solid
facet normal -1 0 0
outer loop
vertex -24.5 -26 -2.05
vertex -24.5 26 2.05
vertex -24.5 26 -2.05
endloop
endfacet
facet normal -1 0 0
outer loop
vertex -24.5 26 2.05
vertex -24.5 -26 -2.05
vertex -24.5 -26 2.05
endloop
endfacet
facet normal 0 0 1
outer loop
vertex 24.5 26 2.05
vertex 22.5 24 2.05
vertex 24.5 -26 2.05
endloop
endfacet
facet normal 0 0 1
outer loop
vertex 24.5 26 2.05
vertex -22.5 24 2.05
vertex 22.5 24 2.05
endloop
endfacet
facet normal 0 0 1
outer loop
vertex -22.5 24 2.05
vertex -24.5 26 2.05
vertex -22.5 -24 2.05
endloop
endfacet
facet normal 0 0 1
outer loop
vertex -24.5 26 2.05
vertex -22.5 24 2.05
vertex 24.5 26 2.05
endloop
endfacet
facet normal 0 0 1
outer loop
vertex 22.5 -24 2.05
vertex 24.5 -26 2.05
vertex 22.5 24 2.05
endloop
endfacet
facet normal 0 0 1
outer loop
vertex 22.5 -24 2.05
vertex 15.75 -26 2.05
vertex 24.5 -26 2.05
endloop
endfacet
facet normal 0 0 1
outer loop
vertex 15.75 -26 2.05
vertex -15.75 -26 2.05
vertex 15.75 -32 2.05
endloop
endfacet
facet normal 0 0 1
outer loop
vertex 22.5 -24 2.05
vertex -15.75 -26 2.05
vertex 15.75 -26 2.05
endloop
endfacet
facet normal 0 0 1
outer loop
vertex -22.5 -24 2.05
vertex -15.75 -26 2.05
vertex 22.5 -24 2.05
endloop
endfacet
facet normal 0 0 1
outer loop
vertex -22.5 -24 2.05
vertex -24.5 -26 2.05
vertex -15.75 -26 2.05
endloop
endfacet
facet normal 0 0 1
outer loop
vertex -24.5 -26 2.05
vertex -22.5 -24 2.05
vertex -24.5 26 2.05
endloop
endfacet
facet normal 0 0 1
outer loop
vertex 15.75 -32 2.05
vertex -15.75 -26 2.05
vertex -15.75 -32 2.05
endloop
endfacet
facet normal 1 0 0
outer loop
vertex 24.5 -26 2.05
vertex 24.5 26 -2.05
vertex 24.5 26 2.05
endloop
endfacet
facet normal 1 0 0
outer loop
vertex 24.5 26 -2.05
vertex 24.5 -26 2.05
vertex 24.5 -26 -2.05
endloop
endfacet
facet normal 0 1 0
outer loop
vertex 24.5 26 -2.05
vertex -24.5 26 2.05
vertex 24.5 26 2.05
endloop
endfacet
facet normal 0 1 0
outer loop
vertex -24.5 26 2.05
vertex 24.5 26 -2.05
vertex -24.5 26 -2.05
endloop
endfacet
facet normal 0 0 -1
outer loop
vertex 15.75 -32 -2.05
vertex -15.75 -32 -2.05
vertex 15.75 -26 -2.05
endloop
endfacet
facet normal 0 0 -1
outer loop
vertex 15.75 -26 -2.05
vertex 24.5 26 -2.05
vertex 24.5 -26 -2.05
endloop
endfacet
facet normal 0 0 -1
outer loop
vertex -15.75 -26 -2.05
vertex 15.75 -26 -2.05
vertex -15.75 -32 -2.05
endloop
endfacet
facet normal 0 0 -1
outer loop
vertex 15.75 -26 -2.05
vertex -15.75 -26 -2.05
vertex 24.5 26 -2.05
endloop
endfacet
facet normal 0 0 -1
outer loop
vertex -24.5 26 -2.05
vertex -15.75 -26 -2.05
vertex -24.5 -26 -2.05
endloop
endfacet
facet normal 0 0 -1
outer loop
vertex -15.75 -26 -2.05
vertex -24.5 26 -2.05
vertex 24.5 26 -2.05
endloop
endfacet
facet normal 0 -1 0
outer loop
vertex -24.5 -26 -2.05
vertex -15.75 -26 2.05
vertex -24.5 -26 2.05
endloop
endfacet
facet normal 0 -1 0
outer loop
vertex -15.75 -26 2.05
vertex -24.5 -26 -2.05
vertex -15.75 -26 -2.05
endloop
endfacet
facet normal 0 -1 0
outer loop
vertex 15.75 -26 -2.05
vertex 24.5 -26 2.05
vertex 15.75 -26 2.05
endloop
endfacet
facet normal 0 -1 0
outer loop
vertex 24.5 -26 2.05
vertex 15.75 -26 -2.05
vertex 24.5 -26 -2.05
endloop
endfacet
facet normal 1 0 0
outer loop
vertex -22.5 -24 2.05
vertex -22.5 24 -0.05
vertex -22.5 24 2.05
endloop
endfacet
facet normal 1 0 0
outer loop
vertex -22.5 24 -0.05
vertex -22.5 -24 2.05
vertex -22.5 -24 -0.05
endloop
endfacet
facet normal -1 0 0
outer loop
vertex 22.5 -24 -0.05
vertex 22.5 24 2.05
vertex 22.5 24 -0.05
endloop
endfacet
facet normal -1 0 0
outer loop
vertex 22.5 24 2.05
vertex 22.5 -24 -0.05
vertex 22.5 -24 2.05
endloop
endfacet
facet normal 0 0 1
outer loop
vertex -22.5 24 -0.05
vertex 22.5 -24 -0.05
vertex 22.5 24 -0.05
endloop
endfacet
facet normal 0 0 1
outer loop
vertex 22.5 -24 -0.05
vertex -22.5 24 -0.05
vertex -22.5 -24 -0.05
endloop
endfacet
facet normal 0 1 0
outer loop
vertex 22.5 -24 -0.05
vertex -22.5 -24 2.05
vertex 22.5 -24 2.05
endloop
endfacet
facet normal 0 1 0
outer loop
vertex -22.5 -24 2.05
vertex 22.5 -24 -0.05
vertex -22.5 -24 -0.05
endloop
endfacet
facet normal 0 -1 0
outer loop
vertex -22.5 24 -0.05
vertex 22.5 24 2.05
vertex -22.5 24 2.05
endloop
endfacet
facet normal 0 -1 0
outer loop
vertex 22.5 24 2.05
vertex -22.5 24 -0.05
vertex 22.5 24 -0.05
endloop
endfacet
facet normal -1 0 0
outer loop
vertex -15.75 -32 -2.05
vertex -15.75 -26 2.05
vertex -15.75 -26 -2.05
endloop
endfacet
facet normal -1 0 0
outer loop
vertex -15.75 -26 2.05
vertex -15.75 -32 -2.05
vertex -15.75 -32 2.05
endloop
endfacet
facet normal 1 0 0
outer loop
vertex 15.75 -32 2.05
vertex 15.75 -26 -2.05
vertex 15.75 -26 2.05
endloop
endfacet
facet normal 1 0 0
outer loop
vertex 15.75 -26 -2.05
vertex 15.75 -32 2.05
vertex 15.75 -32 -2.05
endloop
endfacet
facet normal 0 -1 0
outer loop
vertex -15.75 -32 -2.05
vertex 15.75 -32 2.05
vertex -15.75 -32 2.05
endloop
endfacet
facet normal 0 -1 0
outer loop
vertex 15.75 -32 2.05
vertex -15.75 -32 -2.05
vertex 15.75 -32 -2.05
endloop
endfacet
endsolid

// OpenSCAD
union() {
	translate(v = [0, -29.0000000000, 0]) {
		rotate(a = [0, 0, 0]) {
			cube(center = true, size = [31.5000000000, 6, 4.1000000000]);
		}
	}
	difference() {
		translate(v = [0, 0, 0]) {
			rotate(a = [0, 0, 0]) {
				cube(center = true, size = [49, 52, 4.1000000000]);
			}
		}
		translate(v = [0, 0, 2.0500000000]) {
			rotate(a = [0, 0, 0]) {
				cube(center = true, size = [45, 48, 4.2000000000]);
			}
		}
	}
}
/***********************************************
*********      SolidPython code:      **********
************************************************
 
from solid.objects import *
from solid.solidpython import scad_render_to_file

from config import *

__author__ = 'Mark Weinreuter'


mirror_w = 45
mirror_h = 48
mirror_th = 2.1
h = 7.95  # mirror_th * 2
d = h  # mirror_th * 2


def side(w):
    h2 = h / 2
    w2 = w / 2 - h2
    w2h = w2 + h

    points = [(-w2h, -h2), (w2h, -h2), (w2, h2), (-w2, h2)]
    bar = linear_extrude(d, center=True)(polygon(points))
    cut = trans(y=mirror_th)(c(w, mirror_th * 2, mirror_th))

    print(points)

    return bar - cut


pos_fac = .8
left = trans(mirror_w * pos_fac)(rot(x=90)(side(mirror_h)))
right = trans(-mirror_w * pos_fac)(rot(x=90)(side(mirror_h)))
top = trans(y=-mirror_h * pos_fac)(rot(x=90)(side(mirror_w)))
bottom = trans(y=mirror_h * pos_fac)(rot(x=90)(side(mirror_w)))

con = left + right + bottom + top
scad_render_to_file(con, "scad/mirror_connector_old.scad")

frame_th = 2
frame = C(mirror_w + 2 * frame_th, mirror_h + 2 * frame_th, mirror_th + frame_th)
mirror = C(mirror_w, mirror_h, mirror_th * 2)
mirror.z = frame.top
mir_con2 = frame - mirror

cut_fit = C(mirror_slit_width, 6, mirror_th + frame_th)
cut_fit.front = frame.back

mir_con2 = cut_fit + mir_con2
scad_render_to_file(mir_con2, "scad/mirror_connector.scad")
 
 
************************************************/
